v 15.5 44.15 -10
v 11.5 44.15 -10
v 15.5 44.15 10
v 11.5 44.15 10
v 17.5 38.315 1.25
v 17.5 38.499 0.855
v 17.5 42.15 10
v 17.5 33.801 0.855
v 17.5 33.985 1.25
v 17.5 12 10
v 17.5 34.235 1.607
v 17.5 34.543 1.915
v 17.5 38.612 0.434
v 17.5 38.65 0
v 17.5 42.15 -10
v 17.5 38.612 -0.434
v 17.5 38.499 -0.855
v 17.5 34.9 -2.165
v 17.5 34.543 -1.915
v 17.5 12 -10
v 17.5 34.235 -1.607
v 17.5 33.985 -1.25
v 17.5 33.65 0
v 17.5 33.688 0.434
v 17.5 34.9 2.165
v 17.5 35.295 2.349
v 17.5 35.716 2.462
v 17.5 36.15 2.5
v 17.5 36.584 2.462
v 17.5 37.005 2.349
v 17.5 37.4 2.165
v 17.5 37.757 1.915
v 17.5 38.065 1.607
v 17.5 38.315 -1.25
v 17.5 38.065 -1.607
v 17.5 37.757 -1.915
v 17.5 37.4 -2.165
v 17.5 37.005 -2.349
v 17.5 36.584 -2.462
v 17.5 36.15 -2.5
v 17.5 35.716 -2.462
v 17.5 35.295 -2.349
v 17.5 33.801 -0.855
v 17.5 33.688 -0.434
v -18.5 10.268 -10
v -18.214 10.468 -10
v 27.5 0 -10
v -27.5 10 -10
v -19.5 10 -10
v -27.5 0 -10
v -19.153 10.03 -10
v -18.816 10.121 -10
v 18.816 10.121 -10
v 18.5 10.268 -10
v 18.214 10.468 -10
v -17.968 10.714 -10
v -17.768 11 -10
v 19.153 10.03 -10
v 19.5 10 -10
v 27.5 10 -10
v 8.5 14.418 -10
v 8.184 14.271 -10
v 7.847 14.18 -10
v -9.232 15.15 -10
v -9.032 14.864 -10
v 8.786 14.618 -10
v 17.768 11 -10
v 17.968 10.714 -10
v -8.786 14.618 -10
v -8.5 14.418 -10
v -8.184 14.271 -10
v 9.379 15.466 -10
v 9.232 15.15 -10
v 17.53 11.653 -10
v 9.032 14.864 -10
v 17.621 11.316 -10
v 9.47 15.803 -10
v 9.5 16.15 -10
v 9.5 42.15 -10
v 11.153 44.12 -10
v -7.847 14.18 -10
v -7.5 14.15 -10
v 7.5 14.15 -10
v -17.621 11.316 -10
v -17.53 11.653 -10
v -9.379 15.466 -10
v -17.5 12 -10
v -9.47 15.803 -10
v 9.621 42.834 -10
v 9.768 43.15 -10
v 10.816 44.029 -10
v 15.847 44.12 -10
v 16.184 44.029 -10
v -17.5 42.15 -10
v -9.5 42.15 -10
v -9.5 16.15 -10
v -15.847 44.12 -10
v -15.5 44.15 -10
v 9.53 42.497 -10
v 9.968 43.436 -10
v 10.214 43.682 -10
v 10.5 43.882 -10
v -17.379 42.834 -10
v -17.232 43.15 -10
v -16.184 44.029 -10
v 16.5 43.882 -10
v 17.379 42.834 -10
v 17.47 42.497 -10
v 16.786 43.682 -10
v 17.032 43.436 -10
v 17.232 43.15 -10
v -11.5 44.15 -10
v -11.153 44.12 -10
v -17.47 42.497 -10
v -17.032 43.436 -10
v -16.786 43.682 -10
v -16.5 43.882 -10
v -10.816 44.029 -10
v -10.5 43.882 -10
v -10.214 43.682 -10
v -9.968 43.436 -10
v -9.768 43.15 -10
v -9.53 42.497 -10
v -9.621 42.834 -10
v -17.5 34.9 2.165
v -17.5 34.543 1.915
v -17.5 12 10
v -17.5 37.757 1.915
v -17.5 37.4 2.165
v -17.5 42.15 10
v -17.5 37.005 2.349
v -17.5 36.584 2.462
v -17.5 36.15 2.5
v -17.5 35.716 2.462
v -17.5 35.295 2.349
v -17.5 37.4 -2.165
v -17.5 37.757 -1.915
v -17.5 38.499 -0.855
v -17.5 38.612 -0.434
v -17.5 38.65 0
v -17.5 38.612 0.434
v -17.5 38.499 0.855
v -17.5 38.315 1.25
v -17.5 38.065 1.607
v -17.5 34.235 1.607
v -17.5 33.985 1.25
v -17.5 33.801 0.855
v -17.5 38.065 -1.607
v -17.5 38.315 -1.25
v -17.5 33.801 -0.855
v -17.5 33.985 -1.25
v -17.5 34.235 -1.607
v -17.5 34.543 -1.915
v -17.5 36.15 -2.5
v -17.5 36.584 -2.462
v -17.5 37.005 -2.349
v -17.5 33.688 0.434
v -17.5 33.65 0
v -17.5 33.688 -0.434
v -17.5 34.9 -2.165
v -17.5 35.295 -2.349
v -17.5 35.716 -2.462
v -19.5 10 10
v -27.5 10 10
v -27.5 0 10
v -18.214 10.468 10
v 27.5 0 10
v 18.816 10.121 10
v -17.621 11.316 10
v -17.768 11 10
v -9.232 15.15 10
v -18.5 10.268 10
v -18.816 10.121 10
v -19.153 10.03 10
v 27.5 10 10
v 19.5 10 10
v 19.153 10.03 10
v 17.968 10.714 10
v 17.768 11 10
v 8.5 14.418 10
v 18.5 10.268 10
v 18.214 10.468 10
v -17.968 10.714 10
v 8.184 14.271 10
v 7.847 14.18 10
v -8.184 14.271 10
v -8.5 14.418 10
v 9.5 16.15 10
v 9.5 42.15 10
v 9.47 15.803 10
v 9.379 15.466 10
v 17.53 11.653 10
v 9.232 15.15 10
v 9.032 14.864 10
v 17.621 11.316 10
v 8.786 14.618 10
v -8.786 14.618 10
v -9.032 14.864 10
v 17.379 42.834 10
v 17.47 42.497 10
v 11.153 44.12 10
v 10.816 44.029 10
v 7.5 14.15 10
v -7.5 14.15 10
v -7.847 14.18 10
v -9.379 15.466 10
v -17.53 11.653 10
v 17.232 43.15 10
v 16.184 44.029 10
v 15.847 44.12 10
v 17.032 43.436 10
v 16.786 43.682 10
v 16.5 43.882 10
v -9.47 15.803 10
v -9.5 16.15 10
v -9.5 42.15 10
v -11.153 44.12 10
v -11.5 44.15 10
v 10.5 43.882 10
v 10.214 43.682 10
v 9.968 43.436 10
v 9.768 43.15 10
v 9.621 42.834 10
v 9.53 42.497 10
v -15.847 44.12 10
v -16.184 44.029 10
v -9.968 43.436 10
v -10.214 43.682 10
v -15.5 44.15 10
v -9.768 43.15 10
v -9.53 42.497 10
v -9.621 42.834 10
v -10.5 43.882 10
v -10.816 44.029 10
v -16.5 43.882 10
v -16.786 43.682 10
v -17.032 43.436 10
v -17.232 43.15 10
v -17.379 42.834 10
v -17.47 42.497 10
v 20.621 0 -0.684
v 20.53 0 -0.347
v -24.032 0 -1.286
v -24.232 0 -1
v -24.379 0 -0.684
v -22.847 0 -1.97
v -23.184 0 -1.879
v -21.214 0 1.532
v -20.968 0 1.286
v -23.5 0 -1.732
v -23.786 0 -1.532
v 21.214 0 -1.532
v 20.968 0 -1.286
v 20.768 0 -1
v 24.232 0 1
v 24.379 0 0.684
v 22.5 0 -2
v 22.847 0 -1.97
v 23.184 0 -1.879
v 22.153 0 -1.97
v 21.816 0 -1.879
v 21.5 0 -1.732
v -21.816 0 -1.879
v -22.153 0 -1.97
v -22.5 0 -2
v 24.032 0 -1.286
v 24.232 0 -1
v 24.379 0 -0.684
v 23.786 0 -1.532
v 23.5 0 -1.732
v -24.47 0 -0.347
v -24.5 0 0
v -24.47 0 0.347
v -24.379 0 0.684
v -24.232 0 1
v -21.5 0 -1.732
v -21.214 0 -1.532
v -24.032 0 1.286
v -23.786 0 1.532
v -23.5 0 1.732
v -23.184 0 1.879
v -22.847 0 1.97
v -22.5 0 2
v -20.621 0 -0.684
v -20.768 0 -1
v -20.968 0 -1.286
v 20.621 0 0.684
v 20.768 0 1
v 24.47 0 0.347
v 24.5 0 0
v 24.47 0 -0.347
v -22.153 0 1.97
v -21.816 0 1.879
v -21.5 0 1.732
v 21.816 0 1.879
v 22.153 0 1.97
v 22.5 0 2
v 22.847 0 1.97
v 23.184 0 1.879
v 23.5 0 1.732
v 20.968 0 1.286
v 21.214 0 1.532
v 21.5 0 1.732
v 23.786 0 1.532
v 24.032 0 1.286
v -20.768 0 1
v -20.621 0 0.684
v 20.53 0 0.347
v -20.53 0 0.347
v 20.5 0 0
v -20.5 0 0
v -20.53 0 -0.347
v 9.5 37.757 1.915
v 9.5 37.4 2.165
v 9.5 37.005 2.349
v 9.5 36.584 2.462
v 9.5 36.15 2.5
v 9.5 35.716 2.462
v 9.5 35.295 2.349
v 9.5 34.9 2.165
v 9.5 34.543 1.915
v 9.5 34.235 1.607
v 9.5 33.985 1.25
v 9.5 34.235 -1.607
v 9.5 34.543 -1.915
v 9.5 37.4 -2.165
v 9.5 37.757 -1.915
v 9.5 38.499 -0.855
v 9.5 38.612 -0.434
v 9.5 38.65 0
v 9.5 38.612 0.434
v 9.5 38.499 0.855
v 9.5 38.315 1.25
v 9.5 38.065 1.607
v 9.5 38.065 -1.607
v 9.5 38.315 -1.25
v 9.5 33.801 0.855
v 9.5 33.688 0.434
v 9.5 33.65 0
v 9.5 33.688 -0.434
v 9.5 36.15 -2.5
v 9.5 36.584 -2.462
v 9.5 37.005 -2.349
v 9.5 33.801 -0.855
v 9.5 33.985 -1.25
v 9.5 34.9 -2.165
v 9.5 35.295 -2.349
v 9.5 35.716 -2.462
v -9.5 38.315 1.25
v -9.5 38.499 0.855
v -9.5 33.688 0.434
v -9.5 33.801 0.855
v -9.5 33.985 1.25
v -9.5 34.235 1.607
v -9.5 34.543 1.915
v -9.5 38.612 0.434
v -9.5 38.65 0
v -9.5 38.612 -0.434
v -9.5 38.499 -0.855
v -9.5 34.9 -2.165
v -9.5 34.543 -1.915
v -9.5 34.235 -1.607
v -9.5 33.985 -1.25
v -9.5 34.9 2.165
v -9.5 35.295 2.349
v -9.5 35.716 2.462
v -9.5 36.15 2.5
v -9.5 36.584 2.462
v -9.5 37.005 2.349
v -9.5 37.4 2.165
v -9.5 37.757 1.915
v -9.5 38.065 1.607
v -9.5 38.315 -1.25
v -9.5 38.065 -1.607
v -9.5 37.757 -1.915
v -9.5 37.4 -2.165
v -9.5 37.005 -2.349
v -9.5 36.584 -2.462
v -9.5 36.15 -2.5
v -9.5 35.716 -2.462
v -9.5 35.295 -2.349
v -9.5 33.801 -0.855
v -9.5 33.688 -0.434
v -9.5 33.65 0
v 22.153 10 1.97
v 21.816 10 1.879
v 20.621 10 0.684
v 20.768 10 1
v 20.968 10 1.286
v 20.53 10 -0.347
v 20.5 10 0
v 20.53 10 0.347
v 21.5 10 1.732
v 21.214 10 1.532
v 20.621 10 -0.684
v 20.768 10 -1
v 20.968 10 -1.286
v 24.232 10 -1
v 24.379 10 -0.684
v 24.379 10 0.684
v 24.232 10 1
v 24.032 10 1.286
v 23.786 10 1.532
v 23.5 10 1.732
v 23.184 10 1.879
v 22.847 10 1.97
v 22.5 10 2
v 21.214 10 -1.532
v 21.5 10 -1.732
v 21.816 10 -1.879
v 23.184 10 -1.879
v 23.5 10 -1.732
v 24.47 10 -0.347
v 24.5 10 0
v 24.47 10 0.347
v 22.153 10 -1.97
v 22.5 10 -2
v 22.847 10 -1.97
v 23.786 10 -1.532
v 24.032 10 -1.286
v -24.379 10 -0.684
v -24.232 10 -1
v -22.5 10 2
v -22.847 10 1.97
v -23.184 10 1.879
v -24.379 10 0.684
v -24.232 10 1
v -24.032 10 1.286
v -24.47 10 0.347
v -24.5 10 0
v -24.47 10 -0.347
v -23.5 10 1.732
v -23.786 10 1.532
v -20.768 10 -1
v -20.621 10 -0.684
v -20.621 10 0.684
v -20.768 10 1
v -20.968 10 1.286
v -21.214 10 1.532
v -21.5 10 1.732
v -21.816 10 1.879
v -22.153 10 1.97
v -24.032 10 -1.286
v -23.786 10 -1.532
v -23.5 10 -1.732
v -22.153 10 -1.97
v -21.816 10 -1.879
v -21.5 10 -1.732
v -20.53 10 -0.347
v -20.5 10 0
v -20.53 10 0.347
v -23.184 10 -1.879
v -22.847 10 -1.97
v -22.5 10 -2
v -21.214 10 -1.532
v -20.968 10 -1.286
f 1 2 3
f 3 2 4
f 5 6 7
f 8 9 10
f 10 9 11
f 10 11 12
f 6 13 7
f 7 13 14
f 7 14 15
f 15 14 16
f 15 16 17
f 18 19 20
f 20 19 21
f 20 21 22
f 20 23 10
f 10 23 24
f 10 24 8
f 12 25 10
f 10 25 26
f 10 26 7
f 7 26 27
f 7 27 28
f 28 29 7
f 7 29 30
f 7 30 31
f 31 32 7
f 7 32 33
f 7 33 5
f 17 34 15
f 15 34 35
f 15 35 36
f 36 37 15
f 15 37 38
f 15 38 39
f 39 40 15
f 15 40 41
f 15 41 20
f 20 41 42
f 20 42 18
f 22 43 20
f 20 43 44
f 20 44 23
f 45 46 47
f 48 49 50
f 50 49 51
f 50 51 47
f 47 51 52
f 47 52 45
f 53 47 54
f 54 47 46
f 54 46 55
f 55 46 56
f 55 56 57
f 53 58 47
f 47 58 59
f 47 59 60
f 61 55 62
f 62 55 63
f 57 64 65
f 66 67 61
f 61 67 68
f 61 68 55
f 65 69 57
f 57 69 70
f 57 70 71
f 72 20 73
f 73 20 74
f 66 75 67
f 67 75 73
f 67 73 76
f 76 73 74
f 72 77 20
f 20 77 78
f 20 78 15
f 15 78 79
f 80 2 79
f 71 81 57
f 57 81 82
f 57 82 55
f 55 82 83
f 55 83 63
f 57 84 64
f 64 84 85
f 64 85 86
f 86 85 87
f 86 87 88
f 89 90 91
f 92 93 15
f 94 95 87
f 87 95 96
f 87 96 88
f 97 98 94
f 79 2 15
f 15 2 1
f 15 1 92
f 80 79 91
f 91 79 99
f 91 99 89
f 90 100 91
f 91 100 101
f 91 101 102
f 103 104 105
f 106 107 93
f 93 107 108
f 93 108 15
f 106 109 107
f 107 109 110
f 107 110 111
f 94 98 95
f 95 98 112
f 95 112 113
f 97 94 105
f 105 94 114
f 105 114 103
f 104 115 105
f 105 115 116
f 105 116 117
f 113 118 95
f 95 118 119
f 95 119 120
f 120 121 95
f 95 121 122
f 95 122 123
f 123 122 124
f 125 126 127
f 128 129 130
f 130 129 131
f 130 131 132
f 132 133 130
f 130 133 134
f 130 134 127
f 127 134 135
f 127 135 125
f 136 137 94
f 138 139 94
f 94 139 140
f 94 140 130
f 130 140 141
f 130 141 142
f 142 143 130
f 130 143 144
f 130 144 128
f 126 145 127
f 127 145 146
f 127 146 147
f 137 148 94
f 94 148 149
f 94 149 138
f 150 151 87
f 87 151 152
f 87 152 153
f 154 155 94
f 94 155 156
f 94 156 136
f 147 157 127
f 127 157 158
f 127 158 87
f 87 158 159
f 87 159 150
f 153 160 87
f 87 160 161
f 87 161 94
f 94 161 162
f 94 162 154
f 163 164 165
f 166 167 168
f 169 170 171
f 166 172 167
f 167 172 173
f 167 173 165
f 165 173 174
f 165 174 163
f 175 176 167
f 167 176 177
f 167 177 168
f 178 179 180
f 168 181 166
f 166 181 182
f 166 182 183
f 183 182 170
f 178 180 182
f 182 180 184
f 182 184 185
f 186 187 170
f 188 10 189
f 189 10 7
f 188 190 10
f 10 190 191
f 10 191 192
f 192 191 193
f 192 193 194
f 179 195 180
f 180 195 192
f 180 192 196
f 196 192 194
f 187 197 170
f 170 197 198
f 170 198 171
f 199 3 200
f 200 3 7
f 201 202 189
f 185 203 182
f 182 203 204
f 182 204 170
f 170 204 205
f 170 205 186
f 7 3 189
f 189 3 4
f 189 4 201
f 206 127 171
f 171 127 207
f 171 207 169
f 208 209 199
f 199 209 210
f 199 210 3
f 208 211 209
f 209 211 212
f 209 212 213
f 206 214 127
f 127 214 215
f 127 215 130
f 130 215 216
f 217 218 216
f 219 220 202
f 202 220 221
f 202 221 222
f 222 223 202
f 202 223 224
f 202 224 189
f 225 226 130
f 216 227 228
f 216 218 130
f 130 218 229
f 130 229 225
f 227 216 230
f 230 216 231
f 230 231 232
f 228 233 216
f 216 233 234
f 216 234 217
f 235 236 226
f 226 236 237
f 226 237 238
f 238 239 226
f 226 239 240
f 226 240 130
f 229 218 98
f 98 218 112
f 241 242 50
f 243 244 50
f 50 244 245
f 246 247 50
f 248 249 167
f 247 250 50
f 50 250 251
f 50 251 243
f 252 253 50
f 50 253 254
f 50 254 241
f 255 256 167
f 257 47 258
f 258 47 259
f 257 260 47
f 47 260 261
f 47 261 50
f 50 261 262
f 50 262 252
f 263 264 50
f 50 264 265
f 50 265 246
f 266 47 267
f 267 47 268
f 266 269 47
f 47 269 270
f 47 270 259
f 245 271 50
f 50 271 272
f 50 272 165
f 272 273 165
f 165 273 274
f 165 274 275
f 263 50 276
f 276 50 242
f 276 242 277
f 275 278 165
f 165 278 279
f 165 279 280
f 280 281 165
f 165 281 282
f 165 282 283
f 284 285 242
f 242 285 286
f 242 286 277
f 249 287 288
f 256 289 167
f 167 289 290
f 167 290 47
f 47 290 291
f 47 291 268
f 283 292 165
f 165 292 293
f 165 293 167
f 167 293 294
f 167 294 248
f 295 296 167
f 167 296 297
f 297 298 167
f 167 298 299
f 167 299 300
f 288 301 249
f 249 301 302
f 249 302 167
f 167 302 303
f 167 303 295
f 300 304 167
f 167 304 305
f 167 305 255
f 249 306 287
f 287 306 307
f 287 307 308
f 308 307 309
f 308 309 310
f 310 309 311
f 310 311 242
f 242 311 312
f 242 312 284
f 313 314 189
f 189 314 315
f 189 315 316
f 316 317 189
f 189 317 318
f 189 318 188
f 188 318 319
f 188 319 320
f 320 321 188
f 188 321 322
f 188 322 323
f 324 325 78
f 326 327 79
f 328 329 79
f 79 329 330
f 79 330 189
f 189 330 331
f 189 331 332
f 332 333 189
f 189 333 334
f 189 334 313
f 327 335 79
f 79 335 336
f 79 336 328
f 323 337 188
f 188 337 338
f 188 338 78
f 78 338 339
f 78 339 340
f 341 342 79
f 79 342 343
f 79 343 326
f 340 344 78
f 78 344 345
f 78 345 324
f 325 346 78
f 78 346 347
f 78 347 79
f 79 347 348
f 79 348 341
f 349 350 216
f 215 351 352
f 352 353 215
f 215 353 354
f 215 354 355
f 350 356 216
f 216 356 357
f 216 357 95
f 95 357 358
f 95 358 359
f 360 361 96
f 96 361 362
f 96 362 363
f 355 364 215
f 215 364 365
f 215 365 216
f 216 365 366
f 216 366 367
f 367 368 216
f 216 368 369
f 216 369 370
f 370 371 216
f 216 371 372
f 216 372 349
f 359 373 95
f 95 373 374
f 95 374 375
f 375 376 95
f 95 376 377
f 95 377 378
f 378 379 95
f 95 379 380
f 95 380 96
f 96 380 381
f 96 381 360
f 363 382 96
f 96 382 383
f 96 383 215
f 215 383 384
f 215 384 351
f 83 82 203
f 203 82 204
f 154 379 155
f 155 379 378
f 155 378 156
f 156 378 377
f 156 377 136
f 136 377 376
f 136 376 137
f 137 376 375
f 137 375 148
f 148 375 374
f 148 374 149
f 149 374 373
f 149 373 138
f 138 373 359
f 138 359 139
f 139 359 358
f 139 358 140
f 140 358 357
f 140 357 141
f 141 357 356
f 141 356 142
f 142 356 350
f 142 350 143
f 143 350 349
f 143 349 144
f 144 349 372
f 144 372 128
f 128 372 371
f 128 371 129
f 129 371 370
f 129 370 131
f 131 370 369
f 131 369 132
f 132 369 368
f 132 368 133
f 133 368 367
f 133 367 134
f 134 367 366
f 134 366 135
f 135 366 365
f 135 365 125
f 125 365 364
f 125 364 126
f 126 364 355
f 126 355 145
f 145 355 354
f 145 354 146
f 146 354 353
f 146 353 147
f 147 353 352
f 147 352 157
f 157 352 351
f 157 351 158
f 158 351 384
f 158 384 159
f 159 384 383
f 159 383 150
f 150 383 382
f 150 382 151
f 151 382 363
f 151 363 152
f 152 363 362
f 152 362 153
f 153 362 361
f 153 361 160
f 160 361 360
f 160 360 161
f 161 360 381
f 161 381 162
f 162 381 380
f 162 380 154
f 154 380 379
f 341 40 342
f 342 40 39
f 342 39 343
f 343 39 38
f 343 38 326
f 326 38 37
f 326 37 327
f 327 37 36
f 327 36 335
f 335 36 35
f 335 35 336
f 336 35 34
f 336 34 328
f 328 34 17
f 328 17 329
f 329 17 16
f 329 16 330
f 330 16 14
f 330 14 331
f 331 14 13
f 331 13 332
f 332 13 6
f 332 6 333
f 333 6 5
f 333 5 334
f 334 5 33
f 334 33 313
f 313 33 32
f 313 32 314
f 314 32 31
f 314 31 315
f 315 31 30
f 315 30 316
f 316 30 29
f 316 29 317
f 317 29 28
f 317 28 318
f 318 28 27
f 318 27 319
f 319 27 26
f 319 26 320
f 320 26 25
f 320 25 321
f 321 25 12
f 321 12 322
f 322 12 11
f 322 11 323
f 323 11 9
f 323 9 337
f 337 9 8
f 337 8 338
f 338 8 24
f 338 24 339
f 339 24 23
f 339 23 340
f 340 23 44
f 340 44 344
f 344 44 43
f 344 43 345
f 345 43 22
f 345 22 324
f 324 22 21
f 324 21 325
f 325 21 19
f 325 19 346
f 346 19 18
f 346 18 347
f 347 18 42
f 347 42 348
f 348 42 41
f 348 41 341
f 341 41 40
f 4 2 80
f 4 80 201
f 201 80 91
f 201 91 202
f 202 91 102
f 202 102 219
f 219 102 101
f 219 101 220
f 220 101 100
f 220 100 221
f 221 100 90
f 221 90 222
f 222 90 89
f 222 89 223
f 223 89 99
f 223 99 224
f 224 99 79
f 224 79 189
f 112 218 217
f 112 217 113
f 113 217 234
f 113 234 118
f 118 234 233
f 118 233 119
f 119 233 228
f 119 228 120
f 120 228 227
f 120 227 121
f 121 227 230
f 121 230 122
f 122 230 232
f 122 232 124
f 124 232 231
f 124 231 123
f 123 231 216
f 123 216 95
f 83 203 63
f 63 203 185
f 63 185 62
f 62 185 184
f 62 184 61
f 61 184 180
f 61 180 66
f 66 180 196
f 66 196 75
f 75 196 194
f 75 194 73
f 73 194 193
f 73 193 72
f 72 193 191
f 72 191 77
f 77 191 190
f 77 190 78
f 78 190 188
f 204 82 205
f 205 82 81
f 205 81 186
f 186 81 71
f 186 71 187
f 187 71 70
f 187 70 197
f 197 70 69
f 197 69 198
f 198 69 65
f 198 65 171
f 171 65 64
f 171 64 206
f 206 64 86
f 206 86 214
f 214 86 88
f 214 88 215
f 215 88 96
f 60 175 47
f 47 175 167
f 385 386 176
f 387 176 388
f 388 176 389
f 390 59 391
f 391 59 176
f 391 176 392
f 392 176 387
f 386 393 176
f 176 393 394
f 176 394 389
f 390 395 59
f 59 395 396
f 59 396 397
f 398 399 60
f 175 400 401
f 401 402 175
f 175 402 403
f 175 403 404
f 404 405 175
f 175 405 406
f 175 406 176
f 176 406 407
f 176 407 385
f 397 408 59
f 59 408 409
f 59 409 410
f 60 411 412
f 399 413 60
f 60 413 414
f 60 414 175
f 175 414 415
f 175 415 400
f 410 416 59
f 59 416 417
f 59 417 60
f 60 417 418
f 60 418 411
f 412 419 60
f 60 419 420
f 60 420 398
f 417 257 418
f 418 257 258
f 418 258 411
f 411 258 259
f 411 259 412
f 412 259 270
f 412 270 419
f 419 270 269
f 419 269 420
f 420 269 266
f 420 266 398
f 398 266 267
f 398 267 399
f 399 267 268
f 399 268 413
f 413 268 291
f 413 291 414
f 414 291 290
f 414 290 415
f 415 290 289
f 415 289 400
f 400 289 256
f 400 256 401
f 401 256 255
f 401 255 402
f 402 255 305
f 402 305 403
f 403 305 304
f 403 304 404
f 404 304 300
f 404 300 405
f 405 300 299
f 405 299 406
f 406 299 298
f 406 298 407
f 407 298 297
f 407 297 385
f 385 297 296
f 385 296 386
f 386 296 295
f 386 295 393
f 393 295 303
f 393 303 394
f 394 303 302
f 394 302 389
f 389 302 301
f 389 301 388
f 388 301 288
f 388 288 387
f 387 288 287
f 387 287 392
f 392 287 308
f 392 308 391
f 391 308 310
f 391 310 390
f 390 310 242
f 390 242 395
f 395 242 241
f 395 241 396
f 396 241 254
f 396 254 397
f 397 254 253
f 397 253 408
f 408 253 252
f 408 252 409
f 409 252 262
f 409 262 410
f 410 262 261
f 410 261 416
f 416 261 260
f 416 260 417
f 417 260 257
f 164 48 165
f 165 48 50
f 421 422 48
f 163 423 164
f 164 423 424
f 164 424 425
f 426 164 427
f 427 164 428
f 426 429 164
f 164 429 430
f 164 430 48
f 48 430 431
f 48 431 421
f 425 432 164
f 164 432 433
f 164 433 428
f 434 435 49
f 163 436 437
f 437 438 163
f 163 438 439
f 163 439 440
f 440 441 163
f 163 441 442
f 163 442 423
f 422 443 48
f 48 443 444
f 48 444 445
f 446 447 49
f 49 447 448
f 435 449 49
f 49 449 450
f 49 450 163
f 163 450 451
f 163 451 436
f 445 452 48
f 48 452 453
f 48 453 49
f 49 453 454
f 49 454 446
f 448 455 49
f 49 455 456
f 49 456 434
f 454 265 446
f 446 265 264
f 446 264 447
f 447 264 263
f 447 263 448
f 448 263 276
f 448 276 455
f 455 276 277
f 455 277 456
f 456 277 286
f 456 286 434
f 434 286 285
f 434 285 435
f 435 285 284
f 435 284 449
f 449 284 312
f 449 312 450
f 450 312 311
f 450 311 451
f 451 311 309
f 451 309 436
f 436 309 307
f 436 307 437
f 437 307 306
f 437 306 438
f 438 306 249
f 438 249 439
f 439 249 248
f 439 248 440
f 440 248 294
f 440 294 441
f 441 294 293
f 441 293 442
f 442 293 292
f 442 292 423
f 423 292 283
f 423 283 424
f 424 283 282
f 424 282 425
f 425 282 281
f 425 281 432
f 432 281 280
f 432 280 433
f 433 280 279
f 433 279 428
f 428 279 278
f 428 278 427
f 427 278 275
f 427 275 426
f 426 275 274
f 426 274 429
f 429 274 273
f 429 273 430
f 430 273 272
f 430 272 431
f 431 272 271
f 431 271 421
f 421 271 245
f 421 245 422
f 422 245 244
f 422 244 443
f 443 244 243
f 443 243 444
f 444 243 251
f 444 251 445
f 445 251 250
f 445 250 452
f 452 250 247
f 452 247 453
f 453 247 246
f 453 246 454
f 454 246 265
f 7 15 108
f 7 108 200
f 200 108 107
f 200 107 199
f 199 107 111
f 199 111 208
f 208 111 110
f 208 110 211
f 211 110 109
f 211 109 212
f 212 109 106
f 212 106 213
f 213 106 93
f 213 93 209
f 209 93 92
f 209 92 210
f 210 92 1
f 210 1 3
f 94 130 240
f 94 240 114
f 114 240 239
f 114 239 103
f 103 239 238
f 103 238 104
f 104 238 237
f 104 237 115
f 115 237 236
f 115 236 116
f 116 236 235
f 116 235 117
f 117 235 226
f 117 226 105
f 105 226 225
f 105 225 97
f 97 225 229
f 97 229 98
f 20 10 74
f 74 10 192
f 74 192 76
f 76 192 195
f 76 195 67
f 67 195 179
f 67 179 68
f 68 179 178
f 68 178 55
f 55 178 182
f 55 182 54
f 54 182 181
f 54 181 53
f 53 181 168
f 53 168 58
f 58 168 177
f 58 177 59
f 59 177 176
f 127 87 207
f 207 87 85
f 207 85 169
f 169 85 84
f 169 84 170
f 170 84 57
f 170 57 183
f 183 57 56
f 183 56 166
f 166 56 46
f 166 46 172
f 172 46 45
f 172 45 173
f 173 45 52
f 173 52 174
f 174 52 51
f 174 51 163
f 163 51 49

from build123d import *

# Parameters (mm, degrees)
SKETCH1_W               = 35
SKETCH1_H               = 20
BOSS_EXTRUDE1_DEPTH     = 44.15
SKETCH2_W               = 19
SKETCH2_H               = 20
CUT_EXTRUDE1_DEPTH      = 30
CUT_EXTRUDE2_DEPTH      = 58.220822259
CUT_EXTRUDE2_DEPTH_BACK = 58.220822259
SKETCH3_R               = 2.5
FILLET1_R               = 2
SKETCH4_W               = 10
SKETCH4_H               = 20
SKETCH4_R               = 2
BOSS_EXTRUDE2_DEPTH     = 10
FILLET2_R               = 2


with BuildPart() as part:
    # Sketch1 → Boss-Extrude1 (new body)
    with BuildSketch(Plane(origin=(0, 0, 0), x_dir=(1, 0, 0), z_dir=(0, 1, 0))):
        Rectangle(SKETCH1_W, SKETCH1_H)
    extrude(amount=BOSS_EXTRUDE1_DEPTH)

    # Sketch2 → Cut-Extrude1 (cut)
    with BuildSketch(Plane(origin=(0, 44.15, 0), x_dir=(1, 0, 0), z_dir=(0, 1, 0))):
        Rectangle(SKETCH2_W, SKETCH2_H)
    extrude(amount=-CUT_EXTRUDE1_DEPTH, mode=Mode.SUBTRACT)

    # Sketch3 → Cut-Extrude2 (cut, two sides: drawn at the far end of the back side and taken through both)
    with BuildSketch(Plane(origin=(17.5, 0, 0), x_dir=(0, 0, -1), z_dir=(1, 0, 0)).offset(-CUT_EXTRUDE2_DEPTH_BACK)):
        with Locations((0, 36.15)):
            Circle(SKETCH3_R)
    extrude(amount=CUT_EXTRUDE2_DEPTH + CUT_EXTRUDE2_DEPTH_BACK, mode=Mode.SUBTRACT)

    # Fillet1
    fillet1_edges = [part.edges().sort_by_distance(p)[0] for p in [
        (9.5, 14.15, 0),
        (-9.5, 14.15, 0),
        (9.5, 44.15, 0),
        (-9.5, 44.15, 0),
    ]]
    fillet(fillet1_edges, radius=FILLET1_R)

    # Sketch4 → Boss-Extrude2 (add)
    # profile 1 of 2: a face of its own
    with BuildSketch(Plane.XZ):
        with Locations((22.5, 0)):
            Rectangle(SKETCH4_W, SKETCH4_H)
        with Locations(Location((22.5, 0, 0), (0, 0, 270))):
            Circle(SKETCH4_R, mode=Mode.SUBTRACT)
    # profile 2 of 2: a face of its own
    with BuildSketch(Plane.XZ):
        with Locations((-22.5, 0)):
            Rectangle(SKETCH4_W, SKETCH4_H)
        with Locations(Location((-22.5, 0, 0), (0, 0, 90))):
            Circle(SKETCH4_R, mode=Mode.SUBTRACT)
    extrude(amount=-BOSS_EXTRUDE2_DEPTH)

    # Fillet2
    fillet2_edges = [part.edges().sort_by_distance(p)[0] for p in [
        (-17.5, 44.15, 0),
        (17.5, 44.15, 0),
        (17.5, 10, 0),
        (-17.5, 10, 0),
    ]]
    fillet(fillet2_edges, radius=FILLET2_R)


solid = part.part
